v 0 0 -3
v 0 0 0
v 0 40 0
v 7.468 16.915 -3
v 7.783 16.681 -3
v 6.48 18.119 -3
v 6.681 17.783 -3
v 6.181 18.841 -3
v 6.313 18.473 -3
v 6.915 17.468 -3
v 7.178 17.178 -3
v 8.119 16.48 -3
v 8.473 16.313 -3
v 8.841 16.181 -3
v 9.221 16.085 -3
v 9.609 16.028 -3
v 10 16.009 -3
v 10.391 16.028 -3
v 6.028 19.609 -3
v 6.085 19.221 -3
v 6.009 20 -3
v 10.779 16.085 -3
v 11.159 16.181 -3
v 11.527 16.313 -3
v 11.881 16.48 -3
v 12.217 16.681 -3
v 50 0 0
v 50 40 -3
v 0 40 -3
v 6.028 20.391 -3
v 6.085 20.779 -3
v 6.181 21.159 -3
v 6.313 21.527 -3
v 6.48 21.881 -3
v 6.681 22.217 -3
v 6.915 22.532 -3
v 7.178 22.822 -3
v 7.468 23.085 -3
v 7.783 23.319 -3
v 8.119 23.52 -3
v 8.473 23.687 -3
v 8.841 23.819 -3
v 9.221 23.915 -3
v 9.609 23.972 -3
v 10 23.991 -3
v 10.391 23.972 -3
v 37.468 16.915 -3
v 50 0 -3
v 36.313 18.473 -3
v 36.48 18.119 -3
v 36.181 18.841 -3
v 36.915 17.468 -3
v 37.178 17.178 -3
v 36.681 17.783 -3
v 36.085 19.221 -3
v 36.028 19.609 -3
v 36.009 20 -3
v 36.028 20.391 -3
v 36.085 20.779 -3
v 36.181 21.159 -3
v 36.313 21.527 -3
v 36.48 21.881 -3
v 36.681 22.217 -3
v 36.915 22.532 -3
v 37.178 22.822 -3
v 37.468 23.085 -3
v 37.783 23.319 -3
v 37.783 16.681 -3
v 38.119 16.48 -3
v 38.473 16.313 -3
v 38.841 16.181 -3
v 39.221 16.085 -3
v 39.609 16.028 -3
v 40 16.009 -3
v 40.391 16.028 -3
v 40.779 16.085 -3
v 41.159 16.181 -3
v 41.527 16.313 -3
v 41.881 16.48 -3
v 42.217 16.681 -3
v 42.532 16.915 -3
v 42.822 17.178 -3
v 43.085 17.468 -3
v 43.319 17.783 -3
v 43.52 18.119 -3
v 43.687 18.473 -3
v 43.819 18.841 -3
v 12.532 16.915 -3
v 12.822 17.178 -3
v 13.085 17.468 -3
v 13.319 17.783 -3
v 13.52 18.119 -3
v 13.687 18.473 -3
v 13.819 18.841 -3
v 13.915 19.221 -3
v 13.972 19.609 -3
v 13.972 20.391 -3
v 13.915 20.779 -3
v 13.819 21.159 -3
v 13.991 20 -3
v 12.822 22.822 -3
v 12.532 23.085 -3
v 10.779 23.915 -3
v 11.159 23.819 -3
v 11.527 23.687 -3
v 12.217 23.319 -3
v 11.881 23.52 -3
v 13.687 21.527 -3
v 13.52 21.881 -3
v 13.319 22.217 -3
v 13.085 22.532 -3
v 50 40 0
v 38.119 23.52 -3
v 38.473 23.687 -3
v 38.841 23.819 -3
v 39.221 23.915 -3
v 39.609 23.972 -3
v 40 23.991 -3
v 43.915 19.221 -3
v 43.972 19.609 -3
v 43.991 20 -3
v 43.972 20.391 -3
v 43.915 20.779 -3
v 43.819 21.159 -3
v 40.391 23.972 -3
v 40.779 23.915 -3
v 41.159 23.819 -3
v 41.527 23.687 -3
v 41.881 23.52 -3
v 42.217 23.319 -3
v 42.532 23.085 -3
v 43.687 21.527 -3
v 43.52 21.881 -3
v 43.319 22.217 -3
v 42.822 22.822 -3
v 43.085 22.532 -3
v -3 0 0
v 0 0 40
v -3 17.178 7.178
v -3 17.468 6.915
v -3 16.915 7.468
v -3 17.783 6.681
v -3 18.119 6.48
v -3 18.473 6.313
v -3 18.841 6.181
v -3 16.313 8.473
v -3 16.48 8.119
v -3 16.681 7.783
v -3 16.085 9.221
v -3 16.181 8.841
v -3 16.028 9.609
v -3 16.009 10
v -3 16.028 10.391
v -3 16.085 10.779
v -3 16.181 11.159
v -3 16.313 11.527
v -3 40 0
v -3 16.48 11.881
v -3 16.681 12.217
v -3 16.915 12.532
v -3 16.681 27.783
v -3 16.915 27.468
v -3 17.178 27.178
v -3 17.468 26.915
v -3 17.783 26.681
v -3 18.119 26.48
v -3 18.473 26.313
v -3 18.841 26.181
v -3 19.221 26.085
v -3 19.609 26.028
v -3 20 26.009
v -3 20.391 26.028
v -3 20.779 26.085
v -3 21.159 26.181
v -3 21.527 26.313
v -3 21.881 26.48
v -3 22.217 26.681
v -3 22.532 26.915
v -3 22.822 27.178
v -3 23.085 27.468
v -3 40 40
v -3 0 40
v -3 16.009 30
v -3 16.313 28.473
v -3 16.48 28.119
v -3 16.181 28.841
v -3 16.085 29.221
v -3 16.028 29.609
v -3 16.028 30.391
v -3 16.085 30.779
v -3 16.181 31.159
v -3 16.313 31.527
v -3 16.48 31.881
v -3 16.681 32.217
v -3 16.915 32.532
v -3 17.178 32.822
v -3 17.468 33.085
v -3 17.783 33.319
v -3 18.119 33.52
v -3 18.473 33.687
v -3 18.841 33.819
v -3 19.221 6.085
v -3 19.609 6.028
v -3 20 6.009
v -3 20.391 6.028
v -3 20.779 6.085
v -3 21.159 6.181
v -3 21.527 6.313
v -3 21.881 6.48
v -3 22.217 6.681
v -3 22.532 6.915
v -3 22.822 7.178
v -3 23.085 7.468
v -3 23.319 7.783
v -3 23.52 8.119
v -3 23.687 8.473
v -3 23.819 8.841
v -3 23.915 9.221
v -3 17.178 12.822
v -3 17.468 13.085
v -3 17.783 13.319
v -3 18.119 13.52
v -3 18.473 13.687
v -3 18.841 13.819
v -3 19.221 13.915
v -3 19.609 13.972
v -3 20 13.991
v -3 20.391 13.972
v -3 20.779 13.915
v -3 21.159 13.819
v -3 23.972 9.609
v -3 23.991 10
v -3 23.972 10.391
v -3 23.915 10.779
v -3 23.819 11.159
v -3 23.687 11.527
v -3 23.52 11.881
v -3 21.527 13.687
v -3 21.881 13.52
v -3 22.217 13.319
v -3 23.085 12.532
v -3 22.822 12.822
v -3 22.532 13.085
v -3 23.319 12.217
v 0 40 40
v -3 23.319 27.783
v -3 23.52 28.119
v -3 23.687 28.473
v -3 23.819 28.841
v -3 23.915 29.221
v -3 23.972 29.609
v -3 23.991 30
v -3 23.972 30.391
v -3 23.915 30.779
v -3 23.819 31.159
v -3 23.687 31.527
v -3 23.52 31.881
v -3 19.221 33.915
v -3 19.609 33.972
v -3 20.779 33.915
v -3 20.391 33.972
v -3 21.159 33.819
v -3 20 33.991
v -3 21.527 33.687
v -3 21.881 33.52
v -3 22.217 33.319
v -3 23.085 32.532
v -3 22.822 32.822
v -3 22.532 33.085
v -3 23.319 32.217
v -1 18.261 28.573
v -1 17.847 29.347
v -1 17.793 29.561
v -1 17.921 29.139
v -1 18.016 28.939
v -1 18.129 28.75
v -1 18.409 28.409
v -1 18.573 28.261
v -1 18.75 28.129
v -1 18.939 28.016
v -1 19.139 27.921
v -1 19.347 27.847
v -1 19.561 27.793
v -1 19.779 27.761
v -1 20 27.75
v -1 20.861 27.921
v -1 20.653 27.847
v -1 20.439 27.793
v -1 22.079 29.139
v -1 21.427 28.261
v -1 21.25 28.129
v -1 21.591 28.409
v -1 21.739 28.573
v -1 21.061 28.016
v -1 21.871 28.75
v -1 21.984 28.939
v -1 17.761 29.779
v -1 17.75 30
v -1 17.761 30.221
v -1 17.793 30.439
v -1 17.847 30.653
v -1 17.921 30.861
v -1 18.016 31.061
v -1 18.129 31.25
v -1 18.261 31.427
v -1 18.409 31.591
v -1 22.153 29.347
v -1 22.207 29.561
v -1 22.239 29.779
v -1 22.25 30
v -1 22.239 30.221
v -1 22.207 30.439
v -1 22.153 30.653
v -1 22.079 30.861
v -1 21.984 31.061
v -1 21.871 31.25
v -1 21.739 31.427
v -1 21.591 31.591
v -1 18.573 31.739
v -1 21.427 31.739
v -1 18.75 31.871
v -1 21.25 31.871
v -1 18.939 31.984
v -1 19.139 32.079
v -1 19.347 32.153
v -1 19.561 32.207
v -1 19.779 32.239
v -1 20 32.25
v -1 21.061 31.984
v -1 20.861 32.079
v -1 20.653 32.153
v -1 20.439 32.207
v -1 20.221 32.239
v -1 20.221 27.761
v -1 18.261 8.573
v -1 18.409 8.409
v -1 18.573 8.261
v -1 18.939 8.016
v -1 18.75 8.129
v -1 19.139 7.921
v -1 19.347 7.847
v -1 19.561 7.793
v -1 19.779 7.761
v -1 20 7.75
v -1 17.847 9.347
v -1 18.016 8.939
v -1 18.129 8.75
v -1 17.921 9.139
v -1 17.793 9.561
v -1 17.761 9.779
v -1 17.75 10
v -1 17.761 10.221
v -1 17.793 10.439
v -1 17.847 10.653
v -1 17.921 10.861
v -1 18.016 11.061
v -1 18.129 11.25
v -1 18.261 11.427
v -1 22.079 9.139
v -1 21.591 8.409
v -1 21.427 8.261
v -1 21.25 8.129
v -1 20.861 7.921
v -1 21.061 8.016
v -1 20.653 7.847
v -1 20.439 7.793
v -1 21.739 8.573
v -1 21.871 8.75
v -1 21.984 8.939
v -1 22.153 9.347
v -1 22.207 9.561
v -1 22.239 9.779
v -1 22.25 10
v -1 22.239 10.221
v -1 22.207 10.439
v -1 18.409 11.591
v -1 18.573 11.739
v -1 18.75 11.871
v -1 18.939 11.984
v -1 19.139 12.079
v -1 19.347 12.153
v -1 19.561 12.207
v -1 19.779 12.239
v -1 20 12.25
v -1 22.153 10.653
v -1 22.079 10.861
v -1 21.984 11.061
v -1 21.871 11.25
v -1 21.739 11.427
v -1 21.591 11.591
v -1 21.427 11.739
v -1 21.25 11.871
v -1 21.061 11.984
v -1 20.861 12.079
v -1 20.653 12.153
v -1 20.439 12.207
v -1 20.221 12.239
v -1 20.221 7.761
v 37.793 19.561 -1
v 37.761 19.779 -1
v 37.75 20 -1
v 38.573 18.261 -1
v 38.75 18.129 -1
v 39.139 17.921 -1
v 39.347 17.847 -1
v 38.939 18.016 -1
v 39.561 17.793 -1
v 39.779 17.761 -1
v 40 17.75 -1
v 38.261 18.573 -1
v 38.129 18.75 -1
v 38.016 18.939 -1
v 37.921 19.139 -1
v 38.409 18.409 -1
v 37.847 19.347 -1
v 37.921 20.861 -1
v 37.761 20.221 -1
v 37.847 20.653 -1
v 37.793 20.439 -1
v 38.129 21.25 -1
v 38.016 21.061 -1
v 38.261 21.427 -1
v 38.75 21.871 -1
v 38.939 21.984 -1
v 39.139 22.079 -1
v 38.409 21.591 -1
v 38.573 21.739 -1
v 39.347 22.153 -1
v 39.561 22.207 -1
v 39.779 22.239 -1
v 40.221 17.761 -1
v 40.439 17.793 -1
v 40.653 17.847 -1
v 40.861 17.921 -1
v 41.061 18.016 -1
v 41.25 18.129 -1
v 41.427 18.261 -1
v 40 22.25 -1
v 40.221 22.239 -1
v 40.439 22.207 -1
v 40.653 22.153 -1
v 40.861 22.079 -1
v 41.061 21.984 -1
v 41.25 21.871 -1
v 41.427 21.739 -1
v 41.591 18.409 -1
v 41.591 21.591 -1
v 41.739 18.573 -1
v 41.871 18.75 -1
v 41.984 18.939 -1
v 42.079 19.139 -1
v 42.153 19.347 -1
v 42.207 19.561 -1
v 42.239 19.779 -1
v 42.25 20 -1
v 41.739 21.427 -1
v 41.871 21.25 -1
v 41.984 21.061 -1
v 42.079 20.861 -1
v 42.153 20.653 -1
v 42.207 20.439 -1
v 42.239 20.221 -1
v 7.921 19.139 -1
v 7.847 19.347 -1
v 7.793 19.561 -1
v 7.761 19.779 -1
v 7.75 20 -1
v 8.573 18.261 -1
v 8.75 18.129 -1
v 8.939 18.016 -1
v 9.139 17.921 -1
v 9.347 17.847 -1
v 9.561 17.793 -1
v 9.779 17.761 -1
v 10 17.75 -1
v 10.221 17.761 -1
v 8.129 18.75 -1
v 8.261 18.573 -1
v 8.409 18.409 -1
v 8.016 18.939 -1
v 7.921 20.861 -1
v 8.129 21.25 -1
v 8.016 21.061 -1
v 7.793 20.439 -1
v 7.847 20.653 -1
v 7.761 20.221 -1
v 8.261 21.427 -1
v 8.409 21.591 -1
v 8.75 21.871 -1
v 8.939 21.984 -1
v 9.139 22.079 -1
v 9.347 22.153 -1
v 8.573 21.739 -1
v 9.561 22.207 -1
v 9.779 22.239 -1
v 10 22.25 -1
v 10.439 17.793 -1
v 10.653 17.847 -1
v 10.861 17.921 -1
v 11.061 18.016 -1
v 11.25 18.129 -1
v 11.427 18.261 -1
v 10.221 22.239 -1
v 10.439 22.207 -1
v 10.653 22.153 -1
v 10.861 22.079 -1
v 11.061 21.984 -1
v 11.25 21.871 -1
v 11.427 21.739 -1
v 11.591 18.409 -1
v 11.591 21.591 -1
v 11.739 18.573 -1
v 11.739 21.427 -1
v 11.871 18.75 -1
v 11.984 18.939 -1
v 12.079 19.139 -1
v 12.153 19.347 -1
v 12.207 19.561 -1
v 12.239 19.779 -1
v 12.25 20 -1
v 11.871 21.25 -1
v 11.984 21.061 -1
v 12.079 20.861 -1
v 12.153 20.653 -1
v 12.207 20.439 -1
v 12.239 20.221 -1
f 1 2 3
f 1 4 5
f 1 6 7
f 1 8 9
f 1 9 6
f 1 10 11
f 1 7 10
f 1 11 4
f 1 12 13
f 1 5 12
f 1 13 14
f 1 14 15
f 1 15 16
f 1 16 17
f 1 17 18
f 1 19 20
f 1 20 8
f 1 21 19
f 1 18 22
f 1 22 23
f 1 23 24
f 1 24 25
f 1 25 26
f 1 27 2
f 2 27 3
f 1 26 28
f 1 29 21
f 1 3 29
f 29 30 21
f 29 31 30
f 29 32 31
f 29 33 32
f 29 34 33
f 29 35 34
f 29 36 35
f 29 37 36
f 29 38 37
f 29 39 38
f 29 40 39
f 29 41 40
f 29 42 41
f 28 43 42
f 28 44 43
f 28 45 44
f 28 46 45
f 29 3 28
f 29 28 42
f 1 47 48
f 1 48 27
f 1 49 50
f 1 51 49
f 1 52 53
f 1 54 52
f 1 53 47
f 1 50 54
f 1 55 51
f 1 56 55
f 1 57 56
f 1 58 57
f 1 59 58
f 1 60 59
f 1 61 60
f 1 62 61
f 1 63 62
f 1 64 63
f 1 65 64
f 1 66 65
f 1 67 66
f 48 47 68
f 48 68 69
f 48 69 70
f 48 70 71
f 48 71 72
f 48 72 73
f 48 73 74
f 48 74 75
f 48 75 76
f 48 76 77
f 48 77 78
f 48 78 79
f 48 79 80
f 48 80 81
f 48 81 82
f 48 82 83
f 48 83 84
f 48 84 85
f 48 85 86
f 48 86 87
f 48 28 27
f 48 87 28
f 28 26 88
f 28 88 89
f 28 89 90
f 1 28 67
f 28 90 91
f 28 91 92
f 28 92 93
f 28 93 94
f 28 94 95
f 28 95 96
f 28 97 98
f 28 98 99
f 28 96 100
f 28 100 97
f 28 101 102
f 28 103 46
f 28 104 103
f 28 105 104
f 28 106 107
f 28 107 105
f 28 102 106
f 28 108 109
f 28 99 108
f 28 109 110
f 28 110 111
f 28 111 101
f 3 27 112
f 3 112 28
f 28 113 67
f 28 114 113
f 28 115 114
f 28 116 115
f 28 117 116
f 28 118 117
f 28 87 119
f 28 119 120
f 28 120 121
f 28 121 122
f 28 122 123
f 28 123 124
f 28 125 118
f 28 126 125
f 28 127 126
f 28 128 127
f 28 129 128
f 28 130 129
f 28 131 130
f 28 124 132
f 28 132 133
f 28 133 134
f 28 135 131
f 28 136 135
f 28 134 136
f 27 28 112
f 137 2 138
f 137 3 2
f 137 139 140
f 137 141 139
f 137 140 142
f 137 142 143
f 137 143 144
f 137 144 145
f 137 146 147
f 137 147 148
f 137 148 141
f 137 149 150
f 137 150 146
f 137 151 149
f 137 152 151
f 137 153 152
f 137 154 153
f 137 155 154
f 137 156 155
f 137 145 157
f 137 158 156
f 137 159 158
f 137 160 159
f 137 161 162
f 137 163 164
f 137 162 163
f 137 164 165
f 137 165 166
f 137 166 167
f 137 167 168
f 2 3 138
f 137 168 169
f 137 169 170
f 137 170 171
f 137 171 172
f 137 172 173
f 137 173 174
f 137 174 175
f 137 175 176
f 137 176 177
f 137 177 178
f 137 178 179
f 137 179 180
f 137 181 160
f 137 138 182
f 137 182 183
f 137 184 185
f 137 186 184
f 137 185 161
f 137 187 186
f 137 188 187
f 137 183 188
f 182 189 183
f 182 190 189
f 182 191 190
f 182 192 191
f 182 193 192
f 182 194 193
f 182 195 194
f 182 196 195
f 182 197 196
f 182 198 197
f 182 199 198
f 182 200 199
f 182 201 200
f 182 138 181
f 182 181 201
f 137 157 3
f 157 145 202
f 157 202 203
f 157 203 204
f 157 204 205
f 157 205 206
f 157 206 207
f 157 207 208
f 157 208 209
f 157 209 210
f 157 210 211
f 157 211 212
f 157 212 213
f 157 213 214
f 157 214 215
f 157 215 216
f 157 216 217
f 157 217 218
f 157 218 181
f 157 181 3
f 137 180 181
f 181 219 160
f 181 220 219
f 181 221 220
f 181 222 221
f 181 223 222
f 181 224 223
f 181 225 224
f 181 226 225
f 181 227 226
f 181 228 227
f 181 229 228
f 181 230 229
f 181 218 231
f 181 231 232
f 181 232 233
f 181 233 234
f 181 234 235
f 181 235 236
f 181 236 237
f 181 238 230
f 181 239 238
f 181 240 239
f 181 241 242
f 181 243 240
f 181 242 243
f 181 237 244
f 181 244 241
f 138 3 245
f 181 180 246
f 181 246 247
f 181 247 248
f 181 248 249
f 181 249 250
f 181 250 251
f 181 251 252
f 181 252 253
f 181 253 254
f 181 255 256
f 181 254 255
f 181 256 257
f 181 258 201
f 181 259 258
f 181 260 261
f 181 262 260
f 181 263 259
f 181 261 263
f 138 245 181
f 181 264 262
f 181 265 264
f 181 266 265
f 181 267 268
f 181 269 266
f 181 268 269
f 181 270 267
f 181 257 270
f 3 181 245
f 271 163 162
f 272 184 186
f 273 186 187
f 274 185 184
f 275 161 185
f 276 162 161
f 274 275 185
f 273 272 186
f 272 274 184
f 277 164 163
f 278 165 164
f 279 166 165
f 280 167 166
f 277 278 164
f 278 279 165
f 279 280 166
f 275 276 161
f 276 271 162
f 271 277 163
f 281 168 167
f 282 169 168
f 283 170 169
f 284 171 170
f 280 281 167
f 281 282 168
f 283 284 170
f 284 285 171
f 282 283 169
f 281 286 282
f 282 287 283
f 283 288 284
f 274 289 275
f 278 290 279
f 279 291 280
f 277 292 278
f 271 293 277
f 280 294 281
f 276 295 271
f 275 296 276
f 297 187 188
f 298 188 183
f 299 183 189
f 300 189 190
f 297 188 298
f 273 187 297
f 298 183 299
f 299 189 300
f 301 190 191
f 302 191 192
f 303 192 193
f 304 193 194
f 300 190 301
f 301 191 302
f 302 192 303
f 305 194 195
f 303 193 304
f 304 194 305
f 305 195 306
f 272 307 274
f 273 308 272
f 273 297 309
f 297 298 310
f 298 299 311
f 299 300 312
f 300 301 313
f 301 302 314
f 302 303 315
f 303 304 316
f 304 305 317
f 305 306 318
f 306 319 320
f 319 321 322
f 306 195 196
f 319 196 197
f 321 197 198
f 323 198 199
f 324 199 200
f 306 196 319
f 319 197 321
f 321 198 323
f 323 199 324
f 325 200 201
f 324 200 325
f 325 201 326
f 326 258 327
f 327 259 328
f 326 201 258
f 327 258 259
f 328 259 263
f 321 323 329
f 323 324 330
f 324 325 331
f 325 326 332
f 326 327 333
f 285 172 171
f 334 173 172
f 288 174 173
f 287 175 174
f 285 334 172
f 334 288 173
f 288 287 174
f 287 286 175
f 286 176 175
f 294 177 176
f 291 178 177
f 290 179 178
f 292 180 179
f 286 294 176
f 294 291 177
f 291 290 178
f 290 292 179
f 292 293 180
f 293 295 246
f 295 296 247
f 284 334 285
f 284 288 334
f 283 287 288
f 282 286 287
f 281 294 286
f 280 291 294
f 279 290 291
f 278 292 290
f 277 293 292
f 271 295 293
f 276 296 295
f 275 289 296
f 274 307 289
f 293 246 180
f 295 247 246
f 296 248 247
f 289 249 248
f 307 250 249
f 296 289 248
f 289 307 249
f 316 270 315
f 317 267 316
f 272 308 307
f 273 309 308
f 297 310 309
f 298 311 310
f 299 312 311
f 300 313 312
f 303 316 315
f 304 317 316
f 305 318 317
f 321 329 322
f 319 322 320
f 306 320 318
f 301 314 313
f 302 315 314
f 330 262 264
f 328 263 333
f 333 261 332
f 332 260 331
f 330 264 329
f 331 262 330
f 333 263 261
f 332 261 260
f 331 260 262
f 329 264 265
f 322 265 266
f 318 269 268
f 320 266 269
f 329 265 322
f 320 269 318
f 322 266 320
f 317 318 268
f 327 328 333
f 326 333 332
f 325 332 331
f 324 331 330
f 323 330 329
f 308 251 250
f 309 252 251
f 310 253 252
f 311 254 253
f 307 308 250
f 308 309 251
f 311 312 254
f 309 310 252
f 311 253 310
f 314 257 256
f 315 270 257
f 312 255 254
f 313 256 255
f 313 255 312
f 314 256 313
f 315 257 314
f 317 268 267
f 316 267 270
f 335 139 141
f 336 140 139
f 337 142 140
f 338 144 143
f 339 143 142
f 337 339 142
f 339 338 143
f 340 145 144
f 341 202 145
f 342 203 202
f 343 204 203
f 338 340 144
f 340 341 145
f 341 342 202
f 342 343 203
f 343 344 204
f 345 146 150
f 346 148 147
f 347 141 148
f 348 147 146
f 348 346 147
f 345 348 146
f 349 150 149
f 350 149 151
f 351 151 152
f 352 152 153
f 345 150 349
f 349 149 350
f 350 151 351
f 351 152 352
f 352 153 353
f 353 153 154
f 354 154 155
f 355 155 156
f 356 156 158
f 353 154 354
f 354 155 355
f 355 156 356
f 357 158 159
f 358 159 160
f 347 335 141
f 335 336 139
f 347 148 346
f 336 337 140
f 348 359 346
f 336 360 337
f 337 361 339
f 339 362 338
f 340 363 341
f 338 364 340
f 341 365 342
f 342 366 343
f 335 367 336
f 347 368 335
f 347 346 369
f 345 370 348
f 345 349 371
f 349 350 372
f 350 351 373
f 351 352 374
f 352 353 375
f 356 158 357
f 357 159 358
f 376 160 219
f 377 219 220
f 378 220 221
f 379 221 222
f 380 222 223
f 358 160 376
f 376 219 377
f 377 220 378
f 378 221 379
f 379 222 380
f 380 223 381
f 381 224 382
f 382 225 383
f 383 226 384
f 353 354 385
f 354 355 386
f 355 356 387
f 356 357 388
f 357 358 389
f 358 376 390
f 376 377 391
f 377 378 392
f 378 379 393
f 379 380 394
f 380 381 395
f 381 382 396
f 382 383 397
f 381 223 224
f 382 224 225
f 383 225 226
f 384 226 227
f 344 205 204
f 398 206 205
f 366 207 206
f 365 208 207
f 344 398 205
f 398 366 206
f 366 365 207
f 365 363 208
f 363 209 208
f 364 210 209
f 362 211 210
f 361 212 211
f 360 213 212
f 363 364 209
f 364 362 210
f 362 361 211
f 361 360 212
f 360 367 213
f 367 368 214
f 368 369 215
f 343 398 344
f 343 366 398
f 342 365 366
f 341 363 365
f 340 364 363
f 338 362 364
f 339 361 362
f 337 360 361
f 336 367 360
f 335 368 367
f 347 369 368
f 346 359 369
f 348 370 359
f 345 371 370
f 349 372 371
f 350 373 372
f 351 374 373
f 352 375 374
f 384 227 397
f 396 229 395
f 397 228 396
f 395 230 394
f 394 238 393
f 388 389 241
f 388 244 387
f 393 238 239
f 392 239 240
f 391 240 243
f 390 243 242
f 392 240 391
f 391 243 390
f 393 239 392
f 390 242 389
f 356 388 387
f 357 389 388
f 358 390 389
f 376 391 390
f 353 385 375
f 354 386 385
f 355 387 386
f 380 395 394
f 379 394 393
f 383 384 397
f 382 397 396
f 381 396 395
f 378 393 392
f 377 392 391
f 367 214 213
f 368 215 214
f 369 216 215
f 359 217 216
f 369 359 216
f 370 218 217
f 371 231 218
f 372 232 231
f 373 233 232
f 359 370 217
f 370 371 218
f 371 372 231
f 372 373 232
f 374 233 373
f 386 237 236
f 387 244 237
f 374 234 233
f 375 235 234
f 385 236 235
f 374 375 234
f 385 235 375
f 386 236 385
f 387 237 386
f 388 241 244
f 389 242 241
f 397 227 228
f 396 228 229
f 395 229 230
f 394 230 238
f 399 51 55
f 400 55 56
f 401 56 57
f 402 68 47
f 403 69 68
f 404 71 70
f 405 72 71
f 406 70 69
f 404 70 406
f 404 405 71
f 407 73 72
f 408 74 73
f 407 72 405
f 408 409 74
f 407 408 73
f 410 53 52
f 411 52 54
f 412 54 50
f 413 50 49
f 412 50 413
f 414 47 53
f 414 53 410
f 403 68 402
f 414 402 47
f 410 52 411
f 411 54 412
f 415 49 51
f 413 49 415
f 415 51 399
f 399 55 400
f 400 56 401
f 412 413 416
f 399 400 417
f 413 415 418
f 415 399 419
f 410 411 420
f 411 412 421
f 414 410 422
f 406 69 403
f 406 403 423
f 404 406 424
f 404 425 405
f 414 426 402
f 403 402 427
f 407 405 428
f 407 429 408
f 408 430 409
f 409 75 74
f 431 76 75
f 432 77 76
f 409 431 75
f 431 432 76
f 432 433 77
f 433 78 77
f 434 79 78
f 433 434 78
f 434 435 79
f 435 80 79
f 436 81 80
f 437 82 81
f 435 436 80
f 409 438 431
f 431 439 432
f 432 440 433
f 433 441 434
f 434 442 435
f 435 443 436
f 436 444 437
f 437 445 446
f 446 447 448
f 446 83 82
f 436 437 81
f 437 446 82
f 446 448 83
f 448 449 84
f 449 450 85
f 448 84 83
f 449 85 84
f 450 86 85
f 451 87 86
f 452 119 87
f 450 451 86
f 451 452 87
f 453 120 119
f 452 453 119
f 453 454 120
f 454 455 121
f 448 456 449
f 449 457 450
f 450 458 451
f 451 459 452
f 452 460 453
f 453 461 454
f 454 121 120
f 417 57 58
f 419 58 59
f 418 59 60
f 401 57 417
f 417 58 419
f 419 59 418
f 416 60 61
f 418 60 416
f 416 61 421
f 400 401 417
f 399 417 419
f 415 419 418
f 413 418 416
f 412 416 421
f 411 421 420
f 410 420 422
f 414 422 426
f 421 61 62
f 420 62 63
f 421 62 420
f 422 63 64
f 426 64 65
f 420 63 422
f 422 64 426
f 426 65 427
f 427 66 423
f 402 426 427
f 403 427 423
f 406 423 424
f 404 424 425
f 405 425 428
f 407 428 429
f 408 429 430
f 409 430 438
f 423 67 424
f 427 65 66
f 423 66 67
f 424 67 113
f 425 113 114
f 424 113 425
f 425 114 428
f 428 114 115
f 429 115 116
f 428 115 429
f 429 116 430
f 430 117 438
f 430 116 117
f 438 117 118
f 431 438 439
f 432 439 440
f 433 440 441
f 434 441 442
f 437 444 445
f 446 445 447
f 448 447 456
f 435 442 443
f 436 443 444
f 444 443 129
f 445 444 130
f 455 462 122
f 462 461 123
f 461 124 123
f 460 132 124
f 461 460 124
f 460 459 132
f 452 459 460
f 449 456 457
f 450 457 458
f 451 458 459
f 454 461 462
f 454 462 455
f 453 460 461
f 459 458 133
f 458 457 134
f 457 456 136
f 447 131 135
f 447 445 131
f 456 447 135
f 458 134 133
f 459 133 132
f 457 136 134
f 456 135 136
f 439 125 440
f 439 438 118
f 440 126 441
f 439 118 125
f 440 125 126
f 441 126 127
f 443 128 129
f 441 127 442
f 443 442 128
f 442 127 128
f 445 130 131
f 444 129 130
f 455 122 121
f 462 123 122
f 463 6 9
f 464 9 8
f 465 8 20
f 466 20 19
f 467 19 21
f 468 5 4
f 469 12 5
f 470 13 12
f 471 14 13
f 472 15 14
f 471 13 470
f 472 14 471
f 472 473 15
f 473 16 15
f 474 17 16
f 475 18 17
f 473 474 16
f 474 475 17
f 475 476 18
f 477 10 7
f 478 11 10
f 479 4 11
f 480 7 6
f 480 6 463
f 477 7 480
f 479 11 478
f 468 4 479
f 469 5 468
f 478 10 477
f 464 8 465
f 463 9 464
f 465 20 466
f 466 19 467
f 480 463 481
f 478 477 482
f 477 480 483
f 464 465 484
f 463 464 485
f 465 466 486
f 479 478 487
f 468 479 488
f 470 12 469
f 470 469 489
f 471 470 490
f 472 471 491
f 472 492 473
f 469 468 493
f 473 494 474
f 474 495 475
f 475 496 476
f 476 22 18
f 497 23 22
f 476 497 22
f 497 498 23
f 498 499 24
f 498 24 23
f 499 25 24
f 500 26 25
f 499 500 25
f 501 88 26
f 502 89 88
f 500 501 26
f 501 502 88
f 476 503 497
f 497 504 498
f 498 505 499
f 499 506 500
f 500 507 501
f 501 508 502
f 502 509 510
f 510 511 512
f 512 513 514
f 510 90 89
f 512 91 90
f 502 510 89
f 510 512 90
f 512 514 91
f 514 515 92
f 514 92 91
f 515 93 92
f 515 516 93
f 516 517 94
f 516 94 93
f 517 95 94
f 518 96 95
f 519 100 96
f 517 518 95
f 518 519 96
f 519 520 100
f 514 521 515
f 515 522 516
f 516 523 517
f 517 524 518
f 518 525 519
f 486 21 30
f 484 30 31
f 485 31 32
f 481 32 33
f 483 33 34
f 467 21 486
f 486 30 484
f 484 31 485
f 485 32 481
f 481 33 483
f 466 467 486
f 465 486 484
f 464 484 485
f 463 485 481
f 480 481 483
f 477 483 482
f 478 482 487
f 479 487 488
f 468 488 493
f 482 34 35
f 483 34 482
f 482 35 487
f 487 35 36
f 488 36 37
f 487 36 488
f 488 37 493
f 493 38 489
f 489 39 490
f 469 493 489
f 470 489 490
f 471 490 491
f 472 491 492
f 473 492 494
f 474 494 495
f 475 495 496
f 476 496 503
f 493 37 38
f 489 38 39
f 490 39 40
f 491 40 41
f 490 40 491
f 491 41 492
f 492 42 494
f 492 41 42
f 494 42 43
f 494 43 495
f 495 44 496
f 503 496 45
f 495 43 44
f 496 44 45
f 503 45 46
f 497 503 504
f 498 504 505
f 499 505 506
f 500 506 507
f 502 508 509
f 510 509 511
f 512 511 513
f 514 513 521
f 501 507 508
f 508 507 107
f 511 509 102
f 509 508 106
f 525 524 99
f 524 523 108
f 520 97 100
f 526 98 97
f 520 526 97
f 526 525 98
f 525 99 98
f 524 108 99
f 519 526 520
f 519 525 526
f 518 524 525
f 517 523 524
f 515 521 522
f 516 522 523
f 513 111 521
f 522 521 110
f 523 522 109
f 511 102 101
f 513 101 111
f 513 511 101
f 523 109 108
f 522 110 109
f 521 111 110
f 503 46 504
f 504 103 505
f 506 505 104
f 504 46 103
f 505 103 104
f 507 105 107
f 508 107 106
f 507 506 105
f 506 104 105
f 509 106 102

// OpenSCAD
// パラメータ定義
width = 50;         // 金具の幅 (X方向)
depth = 40;         // 水平面の奥行き (Y方向)
height = 40;        // 垂直面の高さ (Z方向)
thickness = 3;      // 板厚

hole_d1 = 4.5;      // 貫通穴径
hole_d2 = 8.0;      // 皿モミ最大径
hole_cd = 2.0;      // 皿モミ深さ
hole_margin = 10;   // 縁からの距離

$fn = 64;           // 円の描画精度

// 皿穴モジュール (Z=0 から -Z 方向に向かって配置する形状)
module countersunk_hole() {
    translate([0, 0, thickness + 0.1])
        cylinder(d = hole_d1, h = thickness + 0.2);
    translate([0, 0, thickness - hole_cd])
        cylinder(d1 = hole_d1, d2 = hole_d2, h = hole_cd + 0.01);
}

difference() {
    // 1. 基本となるL字形状
    union() {
        // 水平面 (+Y方向、-Z方向に板厚)
        translate([0, 0, -thickness])
            cube([width, depth, thickness]);
        
        // 垂直面 (+Z方向、-X方向に板厚)
        translate([-thickness, 0, 0])
            cube([thickness, depth, height]);
    }

    // 2. 皿穴の配置
    // 水平面の穴 (2箇所)
    translate([hole_margin, depth / 2, 0])
        rotate([0, 180, 0]) countersunk_hole();
    
    translate([width - hole_margin, depth / 2, 0])
        rotate([0, 180, 0]) countersunk_hole();

    // 垂直面の穴 (2箇所)
    translate([0, depth / 2, hole_margin])
        rotate([0, -90, 0]) countersunk_hole();
    
    translate([0, depth / 2, height - hole_margin])
        rotate([0, -90, 0]) countersunk_hole();
}
